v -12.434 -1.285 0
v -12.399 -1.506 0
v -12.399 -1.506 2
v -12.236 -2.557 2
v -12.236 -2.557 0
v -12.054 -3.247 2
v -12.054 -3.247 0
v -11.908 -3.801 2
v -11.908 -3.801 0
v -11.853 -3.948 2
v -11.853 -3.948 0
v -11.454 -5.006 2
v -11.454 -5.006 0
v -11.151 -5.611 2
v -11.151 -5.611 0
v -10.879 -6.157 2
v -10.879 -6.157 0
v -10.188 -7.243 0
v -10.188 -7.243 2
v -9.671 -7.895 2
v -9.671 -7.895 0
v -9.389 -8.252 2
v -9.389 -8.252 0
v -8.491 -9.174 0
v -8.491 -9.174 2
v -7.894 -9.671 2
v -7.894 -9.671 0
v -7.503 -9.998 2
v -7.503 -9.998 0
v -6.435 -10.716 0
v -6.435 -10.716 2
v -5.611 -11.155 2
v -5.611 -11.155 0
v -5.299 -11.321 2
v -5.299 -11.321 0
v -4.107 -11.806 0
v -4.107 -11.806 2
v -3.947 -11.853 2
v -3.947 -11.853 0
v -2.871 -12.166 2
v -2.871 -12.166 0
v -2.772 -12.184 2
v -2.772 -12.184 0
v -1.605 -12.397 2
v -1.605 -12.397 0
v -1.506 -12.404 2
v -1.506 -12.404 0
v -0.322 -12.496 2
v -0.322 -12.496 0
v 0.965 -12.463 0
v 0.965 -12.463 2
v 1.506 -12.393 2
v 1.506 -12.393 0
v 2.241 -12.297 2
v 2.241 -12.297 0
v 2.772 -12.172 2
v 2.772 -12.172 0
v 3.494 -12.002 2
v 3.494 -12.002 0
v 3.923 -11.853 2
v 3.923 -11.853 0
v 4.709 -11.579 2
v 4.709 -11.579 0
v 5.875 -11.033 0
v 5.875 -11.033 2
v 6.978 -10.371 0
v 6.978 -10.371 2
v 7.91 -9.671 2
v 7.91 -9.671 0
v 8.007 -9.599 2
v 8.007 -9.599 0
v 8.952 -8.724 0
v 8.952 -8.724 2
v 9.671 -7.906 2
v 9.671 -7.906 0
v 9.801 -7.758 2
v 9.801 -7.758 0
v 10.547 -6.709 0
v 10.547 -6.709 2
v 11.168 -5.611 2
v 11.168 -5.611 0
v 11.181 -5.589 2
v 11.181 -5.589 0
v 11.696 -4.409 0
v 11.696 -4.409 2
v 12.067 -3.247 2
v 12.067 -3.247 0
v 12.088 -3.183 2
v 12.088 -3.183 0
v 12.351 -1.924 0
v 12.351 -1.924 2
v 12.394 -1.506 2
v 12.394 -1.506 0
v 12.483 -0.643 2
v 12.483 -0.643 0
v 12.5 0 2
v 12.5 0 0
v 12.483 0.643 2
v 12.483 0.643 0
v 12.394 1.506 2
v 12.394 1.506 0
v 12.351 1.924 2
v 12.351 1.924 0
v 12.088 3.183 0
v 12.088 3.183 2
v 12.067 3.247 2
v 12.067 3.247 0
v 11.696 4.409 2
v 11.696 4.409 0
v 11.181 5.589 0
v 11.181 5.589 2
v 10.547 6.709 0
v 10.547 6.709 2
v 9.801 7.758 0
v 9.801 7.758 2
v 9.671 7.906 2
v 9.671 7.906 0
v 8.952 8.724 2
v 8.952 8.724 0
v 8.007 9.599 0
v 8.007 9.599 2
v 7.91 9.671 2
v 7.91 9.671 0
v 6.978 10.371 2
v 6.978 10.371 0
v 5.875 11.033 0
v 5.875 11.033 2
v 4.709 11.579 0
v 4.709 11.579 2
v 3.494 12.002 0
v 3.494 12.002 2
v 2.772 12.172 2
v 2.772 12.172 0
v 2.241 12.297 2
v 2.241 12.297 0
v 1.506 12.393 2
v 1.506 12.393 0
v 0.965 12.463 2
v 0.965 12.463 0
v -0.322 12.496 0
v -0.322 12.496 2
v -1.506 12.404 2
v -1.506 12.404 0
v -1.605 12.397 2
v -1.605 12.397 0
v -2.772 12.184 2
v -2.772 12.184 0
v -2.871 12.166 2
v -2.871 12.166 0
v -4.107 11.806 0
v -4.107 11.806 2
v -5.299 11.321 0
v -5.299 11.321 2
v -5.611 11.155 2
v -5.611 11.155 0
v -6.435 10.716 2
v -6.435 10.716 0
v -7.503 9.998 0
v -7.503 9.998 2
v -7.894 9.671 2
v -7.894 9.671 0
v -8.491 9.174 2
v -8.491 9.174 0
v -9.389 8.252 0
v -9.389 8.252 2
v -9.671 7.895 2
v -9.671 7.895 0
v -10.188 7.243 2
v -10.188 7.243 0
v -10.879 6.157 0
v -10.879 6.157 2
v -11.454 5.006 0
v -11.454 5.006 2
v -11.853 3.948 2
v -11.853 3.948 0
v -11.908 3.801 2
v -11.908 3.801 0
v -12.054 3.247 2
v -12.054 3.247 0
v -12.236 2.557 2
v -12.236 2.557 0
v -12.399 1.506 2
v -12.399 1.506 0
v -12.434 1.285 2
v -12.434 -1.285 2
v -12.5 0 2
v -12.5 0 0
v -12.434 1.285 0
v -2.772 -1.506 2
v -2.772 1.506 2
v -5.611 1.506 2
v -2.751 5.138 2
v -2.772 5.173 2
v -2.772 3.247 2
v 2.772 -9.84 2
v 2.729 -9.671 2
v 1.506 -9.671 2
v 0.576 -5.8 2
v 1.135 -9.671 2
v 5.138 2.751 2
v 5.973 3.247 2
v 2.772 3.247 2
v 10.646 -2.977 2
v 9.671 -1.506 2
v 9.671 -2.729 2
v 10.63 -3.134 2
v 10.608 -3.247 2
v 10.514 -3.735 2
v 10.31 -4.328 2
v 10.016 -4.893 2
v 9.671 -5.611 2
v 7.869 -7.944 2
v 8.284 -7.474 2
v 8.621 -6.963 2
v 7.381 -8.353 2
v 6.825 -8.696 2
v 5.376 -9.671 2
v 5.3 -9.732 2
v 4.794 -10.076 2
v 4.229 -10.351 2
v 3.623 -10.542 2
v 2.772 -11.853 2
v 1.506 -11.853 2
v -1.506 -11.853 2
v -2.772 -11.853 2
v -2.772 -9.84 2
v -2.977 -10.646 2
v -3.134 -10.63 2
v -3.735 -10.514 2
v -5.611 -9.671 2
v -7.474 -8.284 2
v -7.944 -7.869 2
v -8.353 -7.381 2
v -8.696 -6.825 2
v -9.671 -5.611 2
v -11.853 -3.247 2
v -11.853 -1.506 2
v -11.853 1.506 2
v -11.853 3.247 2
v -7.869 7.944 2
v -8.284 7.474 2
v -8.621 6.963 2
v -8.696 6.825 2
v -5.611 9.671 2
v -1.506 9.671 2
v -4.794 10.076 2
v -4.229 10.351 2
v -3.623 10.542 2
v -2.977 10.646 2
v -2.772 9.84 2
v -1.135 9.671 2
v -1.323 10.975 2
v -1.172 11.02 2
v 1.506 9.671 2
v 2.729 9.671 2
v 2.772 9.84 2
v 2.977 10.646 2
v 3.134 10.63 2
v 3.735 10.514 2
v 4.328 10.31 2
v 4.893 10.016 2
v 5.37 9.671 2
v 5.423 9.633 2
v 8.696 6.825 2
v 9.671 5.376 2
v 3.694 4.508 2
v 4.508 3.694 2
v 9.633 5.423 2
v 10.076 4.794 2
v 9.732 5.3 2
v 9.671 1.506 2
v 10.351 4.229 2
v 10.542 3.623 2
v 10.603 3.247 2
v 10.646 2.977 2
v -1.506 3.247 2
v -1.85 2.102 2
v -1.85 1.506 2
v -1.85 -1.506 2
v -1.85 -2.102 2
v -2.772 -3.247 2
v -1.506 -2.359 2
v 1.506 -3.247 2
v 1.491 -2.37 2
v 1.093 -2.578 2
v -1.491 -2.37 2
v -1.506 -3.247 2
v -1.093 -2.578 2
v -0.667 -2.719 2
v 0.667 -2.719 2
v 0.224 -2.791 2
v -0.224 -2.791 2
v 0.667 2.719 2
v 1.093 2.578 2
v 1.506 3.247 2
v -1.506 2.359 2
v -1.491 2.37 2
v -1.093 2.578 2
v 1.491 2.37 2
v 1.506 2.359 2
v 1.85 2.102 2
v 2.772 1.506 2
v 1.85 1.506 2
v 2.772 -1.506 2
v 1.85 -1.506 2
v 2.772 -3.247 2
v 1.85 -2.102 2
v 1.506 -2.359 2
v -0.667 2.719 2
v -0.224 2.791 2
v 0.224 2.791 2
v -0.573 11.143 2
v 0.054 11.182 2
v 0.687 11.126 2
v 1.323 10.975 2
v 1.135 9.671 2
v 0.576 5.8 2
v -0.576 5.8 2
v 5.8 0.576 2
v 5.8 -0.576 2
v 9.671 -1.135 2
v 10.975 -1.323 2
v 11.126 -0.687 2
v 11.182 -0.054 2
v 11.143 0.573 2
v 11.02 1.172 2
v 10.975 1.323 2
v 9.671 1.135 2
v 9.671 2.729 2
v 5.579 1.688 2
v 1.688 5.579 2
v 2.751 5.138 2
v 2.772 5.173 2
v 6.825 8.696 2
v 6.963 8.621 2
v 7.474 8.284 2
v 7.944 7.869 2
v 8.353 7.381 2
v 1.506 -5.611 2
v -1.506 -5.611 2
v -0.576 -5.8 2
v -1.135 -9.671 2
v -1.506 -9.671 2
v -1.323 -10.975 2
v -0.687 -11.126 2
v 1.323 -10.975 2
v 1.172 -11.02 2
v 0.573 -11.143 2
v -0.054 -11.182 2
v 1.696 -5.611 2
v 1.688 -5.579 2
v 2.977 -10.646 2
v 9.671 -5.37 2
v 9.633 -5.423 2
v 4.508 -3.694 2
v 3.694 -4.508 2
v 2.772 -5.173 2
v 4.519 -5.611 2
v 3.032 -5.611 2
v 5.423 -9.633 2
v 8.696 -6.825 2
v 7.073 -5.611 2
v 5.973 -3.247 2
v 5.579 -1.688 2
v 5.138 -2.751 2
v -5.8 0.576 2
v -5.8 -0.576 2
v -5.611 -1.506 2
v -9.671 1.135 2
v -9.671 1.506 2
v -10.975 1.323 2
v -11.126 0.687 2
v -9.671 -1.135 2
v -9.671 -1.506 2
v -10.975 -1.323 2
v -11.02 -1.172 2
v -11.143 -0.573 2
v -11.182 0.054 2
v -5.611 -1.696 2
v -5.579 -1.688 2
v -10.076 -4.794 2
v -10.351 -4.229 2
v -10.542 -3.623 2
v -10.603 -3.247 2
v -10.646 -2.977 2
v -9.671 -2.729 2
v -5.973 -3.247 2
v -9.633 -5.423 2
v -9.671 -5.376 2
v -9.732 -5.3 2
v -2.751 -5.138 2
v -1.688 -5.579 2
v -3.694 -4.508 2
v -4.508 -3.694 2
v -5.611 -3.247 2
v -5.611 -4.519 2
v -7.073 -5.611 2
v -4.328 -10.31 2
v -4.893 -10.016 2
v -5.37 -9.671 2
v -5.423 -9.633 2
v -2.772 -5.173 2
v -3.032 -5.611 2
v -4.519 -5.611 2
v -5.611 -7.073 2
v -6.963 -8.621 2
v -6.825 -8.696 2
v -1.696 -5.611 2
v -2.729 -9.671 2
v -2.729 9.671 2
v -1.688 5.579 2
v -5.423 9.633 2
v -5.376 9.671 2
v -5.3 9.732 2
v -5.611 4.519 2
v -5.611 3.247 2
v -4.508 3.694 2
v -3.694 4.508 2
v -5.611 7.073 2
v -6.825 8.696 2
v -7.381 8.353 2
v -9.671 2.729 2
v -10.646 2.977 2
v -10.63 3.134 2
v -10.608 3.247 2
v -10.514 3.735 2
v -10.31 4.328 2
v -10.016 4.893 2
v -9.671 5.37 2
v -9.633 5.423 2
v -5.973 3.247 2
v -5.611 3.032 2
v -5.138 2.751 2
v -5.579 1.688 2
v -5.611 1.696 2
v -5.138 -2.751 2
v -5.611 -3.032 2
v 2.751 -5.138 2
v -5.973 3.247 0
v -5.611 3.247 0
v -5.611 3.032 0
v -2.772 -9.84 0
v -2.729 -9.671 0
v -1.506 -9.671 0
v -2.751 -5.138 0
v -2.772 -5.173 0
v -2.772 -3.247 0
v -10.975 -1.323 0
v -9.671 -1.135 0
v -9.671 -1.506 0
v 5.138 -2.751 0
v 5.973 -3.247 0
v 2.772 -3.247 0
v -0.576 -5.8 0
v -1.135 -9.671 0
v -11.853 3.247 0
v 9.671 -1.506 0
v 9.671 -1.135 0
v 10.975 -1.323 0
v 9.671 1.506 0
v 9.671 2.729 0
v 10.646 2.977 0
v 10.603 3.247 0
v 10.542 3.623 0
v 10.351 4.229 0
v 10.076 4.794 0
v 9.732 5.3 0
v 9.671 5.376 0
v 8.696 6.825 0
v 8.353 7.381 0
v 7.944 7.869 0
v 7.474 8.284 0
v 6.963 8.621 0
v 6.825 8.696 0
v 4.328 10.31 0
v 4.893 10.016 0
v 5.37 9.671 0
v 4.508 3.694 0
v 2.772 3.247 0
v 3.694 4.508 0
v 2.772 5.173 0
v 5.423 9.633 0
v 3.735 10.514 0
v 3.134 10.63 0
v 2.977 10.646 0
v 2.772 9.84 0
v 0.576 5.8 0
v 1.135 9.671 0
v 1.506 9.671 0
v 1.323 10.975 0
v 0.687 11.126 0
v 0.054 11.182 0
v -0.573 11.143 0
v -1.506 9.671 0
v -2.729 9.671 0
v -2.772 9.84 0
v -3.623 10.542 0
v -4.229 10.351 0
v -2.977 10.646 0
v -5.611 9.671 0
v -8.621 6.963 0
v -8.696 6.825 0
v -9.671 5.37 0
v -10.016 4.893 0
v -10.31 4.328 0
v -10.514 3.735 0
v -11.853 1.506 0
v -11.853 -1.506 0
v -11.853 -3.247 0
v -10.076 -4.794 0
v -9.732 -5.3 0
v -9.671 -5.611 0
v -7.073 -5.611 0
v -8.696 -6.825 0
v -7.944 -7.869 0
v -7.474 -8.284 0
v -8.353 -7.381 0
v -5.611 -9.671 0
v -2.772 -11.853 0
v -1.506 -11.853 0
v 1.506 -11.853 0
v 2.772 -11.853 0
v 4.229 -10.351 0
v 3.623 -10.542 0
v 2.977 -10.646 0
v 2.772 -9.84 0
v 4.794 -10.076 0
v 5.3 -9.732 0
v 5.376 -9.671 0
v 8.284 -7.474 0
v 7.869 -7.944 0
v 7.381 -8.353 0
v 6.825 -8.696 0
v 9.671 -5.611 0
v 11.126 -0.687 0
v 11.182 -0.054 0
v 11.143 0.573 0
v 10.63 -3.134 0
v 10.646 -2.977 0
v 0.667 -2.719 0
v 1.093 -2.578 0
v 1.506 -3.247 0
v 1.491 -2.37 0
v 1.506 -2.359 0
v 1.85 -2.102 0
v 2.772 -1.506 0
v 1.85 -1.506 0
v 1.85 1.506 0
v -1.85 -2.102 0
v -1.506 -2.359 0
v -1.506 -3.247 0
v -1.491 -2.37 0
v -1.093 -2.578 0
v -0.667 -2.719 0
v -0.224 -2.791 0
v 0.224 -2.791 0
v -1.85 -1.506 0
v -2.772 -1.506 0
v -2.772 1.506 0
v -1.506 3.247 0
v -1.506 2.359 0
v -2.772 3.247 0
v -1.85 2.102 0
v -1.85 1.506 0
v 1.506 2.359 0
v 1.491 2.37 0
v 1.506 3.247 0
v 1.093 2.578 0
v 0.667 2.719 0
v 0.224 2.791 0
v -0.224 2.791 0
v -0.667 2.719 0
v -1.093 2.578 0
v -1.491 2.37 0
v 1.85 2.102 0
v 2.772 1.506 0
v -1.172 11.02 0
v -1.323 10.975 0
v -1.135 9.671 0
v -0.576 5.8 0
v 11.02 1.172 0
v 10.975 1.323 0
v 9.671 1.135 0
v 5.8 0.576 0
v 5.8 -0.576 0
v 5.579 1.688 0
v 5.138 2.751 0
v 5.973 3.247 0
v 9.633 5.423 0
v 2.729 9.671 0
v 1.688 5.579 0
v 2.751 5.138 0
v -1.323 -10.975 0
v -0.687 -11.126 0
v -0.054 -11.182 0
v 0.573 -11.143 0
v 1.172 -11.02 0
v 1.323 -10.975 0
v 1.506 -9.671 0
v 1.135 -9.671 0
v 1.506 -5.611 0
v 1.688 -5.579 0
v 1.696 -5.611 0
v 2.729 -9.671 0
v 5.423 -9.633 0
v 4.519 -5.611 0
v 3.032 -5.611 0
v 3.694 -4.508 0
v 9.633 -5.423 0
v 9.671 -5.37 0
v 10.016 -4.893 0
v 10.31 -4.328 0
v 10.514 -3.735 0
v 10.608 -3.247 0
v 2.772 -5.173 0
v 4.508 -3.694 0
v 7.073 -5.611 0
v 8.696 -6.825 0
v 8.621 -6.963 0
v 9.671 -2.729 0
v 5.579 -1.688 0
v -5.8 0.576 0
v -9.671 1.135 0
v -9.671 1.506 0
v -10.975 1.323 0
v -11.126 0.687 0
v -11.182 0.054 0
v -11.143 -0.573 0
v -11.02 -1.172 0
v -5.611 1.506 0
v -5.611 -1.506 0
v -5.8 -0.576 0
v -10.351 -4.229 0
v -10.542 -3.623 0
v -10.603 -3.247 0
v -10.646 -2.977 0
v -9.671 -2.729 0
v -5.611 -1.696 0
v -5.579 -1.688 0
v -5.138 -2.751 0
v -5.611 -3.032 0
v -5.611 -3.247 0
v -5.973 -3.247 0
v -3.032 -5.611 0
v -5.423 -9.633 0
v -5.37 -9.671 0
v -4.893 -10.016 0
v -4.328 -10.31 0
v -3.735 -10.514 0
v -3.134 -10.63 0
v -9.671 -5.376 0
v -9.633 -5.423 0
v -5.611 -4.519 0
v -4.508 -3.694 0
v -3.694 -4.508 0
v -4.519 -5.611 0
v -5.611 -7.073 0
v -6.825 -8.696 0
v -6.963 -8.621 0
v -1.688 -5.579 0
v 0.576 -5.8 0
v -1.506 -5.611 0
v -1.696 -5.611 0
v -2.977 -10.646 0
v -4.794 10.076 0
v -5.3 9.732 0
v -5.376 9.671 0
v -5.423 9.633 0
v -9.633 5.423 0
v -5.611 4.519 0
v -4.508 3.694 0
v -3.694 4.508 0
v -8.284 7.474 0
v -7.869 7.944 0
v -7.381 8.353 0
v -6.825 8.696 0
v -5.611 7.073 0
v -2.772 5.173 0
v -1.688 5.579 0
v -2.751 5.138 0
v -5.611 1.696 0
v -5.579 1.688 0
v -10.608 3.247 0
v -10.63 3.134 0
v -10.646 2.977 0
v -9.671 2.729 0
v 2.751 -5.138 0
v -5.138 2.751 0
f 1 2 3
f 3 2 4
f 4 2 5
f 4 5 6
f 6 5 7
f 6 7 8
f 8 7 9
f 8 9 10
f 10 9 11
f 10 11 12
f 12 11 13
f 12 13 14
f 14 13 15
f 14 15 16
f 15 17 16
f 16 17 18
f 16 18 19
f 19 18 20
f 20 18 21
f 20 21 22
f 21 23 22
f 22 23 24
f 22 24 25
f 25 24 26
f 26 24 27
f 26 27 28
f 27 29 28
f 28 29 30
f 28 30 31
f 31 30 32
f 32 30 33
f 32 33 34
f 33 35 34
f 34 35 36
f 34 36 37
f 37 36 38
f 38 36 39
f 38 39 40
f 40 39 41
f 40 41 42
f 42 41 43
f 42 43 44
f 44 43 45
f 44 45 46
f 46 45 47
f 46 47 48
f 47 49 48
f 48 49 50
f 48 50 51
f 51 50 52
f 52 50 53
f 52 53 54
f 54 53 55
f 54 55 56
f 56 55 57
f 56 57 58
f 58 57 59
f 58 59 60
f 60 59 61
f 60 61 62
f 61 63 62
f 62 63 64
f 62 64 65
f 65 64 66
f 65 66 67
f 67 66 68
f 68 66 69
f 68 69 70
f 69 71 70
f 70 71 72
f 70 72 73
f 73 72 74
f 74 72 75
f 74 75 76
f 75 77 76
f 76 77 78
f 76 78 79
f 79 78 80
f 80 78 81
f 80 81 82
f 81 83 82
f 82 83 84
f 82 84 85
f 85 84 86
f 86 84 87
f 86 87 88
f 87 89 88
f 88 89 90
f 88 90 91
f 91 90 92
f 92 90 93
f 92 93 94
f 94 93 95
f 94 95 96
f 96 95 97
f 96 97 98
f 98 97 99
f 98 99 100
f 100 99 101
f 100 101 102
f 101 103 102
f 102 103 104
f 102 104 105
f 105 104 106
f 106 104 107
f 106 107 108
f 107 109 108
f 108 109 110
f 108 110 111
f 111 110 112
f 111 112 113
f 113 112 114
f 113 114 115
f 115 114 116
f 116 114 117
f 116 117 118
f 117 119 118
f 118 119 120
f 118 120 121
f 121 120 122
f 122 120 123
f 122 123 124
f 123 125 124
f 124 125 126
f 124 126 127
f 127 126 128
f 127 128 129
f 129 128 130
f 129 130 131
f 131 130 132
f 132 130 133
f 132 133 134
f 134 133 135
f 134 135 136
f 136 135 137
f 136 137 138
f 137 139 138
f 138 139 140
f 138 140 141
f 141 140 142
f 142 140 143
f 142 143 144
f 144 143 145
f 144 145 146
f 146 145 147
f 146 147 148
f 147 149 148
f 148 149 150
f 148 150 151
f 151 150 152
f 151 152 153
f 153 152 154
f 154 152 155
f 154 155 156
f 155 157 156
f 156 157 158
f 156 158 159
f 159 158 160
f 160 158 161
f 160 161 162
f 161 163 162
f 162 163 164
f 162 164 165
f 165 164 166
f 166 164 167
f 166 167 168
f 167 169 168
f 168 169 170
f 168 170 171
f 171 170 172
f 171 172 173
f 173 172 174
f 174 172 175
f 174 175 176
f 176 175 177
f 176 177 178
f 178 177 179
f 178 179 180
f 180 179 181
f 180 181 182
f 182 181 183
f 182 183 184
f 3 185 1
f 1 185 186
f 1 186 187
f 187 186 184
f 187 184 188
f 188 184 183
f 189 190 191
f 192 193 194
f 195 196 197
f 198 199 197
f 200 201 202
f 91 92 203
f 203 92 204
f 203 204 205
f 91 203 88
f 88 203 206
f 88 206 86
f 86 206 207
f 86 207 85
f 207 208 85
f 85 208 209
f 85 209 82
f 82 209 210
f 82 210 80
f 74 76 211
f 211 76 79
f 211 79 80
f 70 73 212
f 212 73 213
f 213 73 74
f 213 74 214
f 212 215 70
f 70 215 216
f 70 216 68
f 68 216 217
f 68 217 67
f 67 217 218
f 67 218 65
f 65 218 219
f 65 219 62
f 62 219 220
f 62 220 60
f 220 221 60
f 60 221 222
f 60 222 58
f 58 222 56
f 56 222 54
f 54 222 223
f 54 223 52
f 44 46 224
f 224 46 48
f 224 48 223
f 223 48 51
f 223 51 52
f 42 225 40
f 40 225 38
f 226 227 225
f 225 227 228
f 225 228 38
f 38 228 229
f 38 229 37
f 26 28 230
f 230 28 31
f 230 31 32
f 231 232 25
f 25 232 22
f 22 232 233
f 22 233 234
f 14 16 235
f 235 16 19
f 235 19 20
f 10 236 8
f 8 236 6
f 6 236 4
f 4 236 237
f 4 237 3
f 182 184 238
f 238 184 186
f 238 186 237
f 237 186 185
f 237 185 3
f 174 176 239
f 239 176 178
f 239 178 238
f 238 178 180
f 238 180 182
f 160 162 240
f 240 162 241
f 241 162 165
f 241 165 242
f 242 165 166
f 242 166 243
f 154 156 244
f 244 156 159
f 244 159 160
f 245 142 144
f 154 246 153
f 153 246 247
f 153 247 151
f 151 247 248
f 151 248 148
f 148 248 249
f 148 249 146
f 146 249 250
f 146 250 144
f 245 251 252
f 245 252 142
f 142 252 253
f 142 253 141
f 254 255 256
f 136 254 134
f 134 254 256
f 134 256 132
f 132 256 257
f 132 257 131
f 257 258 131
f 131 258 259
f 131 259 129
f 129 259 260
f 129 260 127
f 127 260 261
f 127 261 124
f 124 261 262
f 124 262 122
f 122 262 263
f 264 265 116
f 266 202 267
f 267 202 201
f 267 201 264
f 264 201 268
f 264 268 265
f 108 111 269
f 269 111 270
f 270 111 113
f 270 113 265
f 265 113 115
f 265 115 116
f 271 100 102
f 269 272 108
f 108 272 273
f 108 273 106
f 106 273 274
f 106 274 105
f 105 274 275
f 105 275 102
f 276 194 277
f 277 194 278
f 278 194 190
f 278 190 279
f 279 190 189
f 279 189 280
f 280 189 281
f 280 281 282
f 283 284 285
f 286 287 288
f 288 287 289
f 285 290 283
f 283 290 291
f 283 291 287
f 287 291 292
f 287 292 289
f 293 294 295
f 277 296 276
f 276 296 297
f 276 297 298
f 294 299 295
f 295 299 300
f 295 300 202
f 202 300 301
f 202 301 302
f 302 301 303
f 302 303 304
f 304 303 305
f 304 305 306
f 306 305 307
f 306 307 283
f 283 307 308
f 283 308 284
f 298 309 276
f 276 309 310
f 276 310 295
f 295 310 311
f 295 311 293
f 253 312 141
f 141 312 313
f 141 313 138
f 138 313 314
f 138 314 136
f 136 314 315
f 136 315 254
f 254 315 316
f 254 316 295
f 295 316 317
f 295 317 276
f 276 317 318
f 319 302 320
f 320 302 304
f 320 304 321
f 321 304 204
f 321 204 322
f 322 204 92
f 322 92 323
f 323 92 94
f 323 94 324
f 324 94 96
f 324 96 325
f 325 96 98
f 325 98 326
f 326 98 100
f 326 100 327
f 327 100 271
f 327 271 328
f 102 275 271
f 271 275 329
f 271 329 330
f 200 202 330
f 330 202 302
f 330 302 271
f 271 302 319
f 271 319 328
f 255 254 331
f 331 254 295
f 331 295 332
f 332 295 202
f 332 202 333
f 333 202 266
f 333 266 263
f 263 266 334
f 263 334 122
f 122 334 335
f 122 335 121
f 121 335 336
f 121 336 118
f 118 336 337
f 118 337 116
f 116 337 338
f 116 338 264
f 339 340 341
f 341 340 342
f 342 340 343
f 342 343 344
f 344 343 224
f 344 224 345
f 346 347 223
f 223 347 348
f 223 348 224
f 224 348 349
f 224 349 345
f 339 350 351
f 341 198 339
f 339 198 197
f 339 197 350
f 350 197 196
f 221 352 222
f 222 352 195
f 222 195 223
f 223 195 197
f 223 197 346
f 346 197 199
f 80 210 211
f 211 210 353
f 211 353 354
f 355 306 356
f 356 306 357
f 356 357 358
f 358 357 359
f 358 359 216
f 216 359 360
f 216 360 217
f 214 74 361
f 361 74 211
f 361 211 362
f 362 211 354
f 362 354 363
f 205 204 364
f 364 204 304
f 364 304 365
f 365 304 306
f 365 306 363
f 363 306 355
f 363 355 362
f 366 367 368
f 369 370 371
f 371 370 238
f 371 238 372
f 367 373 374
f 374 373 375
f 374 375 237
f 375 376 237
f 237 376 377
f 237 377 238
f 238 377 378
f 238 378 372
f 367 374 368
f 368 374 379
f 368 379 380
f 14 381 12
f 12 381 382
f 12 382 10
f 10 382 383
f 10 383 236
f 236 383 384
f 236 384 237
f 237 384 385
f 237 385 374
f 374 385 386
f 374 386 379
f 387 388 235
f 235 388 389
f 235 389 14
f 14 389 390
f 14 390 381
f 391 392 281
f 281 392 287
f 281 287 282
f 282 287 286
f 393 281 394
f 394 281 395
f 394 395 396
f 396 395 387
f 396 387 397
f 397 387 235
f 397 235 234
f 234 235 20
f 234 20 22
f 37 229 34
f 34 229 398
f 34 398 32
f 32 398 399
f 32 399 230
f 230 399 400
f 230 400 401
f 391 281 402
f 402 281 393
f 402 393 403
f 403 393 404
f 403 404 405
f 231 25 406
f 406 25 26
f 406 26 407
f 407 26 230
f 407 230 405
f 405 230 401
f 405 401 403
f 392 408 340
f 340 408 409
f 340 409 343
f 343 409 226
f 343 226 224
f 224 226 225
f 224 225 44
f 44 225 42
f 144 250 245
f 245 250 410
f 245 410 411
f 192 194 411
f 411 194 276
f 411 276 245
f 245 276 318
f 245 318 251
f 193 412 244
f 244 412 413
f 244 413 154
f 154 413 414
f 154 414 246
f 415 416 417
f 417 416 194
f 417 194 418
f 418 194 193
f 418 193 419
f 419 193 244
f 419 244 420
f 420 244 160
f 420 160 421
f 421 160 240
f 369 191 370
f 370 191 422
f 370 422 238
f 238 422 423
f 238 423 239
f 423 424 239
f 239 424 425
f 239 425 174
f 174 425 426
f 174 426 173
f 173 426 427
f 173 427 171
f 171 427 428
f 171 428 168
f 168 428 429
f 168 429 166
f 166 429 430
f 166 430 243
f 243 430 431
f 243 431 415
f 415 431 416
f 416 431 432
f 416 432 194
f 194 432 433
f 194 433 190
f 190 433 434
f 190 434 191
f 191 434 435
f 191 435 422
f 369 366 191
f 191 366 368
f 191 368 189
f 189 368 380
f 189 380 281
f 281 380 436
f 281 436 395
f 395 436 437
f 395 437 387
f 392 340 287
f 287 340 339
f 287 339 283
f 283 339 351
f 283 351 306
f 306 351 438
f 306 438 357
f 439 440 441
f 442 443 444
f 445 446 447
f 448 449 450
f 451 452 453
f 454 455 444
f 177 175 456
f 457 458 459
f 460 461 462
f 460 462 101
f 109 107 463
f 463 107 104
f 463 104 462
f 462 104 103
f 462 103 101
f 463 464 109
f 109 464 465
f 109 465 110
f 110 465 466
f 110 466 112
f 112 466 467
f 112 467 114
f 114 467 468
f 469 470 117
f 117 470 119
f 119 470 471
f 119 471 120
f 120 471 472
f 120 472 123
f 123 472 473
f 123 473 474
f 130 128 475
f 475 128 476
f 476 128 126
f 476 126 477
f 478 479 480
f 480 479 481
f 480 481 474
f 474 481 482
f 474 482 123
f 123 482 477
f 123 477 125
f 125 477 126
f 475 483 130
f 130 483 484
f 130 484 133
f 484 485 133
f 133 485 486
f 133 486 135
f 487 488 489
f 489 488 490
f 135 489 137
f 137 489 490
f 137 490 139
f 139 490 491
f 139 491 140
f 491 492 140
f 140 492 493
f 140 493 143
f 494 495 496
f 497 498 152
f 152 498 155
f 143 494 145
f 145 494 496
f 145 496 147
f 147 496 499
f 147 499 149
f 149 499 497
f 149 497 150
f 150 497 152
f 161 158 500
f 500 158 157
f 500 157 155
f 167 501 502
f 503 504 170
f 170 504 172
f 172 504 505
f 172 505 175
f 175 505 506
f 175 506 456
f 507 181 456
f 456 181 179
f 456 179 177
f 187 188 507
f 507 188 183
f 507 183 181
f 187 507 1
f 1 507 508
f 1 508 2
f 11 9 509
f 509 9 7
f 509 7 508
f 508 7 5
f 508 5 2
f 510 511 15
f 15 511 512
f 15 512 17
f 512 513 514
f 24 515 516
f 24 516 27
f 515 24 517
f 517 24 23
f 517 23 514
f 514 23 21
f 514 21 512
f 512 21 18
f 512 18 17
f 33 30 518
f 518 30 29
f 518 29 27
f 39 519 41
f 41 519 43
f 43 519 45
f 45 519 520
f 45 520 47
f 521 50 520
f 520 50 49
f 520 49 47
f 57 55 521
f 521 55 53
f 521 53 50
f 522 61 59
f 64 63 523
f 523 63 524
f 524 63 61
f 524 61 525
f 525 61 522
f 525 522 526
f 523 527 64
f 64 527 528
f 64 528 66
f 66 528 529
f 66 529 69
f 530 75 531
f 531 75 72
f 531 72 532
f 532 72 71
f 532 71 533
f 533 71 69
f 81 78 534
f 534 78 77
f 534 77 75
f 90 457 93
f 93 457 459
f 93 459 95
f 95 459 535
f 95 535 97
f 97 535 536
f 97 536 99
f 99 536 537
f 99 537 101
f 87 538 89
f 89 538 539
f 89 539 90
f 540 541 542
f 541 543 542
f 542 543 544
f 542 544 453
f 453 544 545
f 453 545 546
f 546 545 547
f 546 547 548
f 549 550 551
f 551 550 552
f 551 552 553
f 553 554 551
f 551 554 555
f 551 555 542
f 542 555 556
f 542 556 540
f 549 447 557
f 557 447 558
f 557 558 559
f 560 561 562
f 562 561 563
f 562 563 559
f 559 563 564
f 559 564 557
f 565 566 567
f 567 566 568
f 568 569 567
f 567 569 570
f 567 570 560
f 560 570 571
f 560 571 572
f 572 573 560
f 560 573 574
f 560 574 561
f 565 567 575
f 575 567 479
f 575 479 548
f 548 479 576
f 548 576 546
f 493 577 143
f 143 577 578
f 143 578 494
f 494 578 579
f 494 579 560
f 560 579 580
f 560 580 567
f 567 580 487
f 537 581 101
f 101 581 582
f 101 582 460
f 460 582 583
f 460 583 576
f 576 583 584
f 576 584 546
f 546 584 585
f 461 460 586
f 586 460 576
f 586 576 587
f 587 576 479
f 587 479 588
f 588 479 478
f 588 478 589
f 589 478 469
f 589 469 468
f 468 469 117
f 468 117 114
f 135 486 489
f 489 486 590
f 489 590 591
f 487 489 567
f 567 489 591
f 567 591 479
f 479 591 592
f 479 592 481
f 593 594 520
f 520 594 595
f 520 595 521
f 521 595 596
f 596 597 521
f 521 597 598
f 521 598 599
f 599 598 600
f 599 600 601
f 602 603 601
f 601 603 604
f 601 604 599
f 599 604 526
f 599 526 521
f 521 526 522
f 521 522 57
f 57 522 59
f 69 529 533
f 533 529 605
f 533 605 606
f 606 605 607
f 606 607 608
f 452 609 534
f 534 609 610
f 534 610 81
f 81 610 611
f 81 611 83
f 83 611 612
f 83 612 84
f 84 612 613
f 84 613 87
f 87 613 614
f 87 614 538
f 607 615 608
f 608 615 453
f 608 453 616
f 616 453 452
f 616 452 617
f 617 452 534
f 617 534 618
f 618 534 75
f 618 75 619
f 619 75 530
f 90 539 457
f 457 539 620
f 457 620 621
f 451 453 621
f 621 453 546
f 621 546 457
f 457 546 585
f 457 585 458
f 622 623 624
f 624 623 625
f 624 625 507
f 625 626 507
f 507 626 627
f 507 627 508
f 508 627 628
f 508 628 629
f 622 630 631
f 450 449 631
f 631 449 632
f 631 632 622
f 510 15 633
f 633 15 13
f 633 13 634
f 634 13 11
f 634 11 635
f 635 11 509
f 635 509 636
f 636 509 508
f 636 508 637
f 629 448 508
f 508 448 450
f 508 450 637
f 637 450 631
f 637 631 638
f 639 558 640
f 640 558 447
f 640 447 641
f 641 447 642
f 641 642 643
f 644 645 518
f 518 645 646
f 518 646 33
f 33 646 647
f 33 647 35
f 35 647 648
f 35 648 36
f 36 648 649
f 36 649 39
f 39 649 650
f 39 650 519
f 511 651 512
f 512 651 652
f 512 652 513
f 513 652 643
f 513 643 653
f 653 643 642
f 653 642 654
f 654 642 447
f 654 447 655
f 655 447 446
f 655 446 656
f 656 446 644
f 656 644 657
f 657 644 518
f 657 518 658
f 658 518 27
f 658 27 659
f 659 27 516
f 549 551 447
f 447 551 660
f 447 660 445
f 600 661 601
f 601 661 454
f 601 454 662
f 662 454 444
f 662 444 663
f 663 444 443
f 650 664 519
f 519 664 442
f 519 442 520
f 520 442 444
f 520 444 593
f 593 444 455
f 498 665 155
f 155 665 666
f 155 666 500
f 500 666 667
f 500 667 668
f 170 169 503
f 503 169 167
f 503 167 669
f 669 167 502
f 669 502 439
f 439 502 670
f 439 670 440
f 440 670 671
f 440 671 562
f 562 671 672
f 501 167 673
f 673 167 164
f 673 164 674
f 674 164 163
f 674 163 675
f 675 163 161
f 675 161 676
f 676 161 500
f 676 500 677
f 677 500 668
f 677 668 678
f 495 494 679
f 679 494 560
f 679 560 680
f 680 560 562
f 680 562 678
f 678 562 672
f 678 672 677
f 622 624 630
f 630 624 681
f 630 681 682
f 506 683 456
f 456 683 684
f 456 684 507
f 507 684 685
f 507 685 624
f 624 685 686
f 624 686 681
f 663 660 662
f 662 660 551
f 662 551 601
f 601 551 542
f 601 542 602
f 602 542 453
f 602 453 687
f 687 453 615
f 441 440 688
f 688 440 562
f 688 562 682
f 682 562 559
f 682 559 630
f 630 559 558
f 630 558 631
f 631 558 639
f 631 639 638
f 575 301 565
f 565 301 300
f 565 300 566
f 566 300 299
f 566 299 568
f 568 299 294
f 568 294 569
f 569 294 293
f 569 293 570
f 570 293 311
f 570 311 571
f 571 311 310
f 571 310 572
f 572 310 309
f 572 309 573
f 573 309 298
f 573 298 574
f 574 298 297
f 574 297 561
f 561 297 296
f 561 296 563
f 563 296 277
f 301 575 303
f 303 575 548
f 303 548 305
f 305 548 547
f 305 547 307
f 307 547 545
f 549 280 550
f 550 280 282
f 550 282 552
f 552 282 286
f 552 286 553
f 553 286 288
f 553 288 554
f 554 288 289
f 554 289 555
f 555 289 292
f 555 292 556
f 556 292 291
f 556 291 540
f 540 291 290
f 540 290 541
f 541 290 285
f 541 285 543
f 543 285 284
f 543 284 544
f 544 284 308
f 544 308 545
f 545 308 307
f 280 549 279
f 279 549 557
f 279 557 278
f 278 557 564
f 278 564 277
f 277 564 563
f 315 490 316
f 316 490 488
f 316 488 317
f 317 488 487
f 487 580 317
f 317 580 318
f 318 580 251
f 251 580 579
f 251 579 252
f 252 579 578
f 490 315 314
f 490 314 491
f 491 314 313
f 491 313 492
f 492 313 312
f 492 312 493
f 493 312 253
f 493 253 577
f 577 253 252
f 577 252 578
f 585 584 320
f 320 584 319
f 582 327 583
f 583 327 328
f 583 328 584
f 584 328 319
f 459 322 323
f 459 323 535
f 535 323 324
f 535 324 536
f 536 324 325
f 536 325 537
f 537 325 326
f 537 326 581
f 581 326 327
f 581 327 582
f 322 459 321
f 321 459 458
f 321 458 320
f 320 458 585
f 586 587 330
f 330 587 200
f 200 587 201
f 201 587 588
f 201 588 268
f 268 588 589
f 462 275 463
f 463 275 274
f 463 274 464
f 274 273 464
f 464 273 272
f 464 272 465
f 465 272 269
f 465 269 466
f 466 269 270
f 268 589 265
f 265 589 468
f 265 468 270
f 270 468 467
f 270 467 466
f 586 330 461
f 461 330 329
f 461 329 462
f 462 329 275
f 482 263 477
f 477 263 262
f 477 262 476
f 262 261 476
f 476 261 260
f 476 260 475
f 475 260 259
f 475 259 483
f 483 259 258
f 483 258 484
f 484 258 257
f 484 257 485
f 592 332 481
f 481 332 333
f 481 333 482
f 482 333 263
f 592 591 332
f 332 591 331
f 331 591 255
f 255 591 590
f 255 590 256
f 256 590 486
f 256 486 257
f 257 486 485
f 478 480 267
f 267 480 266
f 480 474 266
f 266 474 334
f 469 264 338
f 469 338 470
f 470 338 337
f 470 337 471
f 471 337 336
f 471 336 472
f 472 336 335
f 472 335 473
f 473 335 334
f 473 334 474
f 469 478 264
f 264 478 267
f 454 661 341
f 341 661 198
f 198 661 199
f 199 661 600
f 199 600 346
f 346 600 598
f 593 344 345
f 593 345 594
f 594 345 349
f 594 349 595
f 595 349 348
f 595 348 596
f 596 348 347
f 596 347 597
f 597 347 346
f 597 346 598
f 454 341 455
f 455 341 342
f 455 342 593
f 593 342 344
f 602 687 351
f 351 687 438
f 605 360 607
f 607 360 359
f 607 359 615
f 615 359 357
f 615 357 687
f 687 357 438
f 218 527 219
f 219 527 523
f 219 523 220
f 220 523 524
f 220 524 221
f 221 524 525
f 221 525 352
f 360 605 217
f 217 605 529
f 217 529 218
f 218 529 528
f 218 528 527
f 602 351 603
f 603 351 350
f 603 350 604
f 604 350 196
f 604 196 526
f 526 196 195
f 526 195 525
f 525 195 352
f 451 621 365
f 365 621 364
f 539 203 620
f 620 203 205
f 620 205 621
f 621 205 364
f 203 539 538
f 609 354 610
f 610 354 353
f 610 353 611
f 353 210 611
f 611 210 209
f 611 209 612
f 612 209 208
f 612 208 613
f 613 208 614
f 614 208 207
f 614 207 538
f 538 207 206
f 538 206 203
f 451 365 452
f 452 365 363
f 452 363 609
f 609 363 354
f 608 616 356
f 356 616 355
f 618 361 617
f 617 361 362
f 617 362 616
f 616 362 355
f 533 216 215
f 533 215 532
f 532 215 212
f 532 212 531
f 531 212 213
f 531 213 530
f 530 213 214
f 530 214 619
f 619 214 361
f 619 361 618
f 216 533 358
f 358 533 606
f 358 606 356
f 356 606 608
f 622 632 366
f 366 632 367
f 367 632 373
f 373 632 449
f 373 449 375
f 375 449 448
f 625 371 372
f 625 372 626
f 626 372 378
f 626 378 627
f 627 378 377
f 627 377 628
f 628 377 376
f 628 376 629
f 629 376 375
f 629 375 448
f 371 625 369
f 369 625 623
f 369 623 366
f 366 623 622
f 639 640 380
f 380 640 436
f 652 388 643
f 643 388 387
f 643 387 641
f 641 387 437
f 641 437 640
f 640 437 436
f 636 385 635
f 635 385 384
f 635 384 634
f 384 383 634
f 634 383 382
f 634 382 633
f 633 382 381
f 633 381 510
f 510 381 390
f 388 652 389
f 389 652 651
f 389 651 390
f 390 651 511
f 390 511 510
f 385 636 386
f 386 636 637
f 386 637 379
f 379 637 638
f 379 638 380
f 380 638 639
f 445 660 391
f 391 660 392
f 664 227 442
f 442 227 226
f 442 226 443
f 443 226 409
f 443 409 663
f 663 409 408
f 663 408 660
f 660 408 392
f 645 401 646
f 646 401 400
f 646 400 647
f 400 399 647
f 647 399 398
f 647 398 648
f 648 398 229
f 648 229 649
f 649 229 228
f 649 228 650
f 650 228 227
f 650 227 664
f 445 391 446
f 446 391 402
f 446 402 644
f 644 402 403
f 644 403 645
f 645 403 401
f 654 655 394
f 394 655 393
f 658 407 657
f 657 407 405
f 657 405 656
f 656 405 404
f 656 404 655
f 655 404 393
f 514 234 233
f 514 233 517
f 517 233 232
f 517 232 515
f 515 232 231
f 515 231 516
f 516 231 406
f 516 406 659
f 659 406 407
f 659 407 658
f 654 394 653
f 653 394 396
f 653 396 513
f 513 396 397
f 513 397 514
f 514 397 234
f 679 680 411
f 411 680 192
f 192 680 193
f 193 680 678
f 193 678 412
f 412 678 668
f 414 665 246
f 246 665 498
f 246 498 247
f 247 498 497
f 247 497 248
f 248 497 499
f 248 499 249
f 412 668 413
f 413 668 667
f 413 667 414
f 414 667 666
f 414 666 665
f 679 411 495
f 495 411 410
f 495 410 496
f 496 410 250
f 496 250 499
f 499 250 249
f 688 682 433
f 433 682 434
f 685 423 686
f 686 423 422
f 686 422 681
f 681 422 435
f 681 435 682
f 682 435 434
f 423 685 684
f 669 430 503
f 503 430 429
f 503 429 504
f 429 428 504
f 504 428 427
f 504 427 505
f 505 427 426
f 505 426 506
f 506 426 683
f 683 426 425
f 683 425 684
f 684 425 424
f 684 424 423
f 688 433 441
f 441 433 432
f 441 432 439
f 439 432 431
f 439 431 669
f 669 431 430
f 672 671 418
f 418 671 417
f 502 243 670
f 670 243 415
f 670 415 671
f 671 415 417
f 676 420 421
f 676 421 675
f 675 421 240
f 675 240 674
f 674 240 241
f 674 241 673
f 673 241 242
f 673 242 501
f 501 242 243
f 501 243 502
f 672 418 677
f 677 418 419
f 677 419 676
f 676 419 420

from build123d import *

# Parameters (mm, degrees)
SKETCH1_R           = 12.5
BOSS_EXTRUDE1_DEPTH = 2
CUT_EXTRUDE1_DEPTH  = 2
CUT_EXTRUDE2_DEPTH  = 2


with BuildPart() as part:
    # Sketch1 → Boss-Extrude1 (new body)
    with BuildSketch(Plane.XY):
        Circle(SKETCH1_R)
    extrude(amount=BOSS_EXTRUDE1_DEPTH)

    # Sketch2 → Cut-Extrude1 (cut)
    with BuildSketch(Plane.XY.offset(2)):
        with BuildLine():
            Line((1.85, 2.101784956), (1.85, -2.101784956))
            ThreePointArc((1.85, -2.101784956), (0, -2.8), (-1.85, -2.101784956))
            Line((-1.85, -2.101784956), (-1.85, 2.101784956))
            ThreePointArc((-1.85, 2.101784956), (0, 2.8), (1.85, 2.101784956))
        make_face()
    extrude(amount=-CUT_EXTRUDE1_DEPTH, mode=Mode.SUBTRACT)

    # Sketch3 → Cut-Extrude2 (cut)
    with BuildSketch(Plane.XY.offset(2)):
        with BuildLine():
            Line((-0.575541349, 5.8), (0.575541349, 5.8))
            Line((0.575541349, 5.8), (1.323383427, 10.975313802))
            add(Edge.make_bspline(
                [(-1.323383427, 10.975313802), (0, 11.388369724), (1.323383427, 10.975313802)],
                knots=[0, 0, 0, 1, 1, 1], degree=2))
            Line((-1.323383427, 10.975313802), (-0.575541349, 5.8))
        make_face()
        with BuildLine():
            Line((2.75129478, 5.13825115), (5.422717619, 9.633430872))
            add(Edge.make_bspline(
                [(2.977423895, 10.646304697), (4.358140415, 10.521481696), (5.422717619, 9.633430872)],
                knots=[0, 0, 0, 1, 1, 1], degree=2))
            Line((2.977423895, 10.646304697), (1.687833035, 5.578751427))
            Line((1.687833035, 5.578751427), (2.75129478, 5.13825115))
        make_face()
        with BuildLine():
            Line((4.508188522, 3.69425014), (8.69649221, 6.82494542))
            add(Edge.make_bspline(
                [(6.82494542, 8.69649221), (8.052793458, 8.052793458), (8.69649221, 6.82494542)],
                knots=[0, 0, 0, 1, 1, 1], degree=2))
            Line((6.82494542, 8.69649221), (3.69425014, 4.508188522))
            Line((3.69425014, 4.508188522), (4.508188522, 3.69425014))
        make_face()
        with BuildLine():
            Line((5.578751427, 1.687833035), (10.646304697, 2.977423895))
            add(Edge.make_bspline(
                [(9.633430872, 5.422717619), (10.521481696, 4.358140415), (10.646304697, 2.977423895)],
                knots=[0, 0, 0, 1, 1, 1], degree=2))
            Line((9.633430872, 5.422717619), (5.13825115, 2.75129478))
            Line((5.13825115, 2.75129478), (5.578751427, 1.687833035))
        make_face()
        with BuildLine():
            Line((5.8, -0.575541349), (10.975313802, -1.323383427))
            add(Edge.make_bspline(
                [(10.975313802, 1.323383427), (11.388369724, 0), (10.975313802, -1.323383427)],
                knots=[0, 0, 0, 1, 1, 1], degree=2))
            Line((10.975313802, 1.323383427), (5.8, 0.575541349))
            Line((5.8, 0.575541349), (5.8, -0.575541349))
        make_face()
        with BuildLine():
            Line((5.13825115, -2.75129478), (9.633430872, -5.422717619))
            add(Edge.make_bspline(
                [(10.646304697, -2.977423895), (10.521481696, -4.358140415), (9.633430872, -5.422717619)],
                knots=[0, 0, 0, 1, 1, 1], degree=2))
            Line((10.646304697, -2.977423895), (5.578751427, -1.687833035))
            Line((5.578751427, -1.687833035), (5.13825115, -2.75129478))
        make_face()
        with BuildLine():
            Line((3.69425014, -4.508188522), (6.82494542, -8.69649221))
            add(Edge.make_bspline(
                [(8.69649221, -6.82494542), (8.052793458, -8.052793458), (6.82494542, -8.69649221)],
                knots=[0, 0, 0, 1, 1, 1], degree=2))
            Line((8.69649221, -6.82494542), (4.508188522, -3.69425014))
            Line((4.508188522, -3.69425014), (3.69425014, -4.508188522))
        make_face()
        with BuildLine():
            Line((1.687833035, -5.578751427), (2.977423895, -10.646304697))
            add(Edge.make_bspline(
                [(5.422717619, -9.633430872), (4.358140415, -10.521481696), (2.977423895, -10.646304697)],
                knots=[0, 0, 0, 1, 1, 1], degree=2))
            Line((5.422717619, -9.633430872), (2.75129478, -5.13825115))
            Line((2.75129478, -5.13825115), (1.687833035, -5.578751427))
        make_face()
        with BuildLine():
            Line((-0.575541349, -5.8), (-1.323383427, -10.975313802))
            add(Edge.make_bspline(
                [(1.323383427, -10.975313802), (0, -11.388369724), (-1.323383427, -10.975313802)],
                knots=[0, 0, 0, 1, 1, 1], degree=2))
            Line((1.323383427, -10.975313802), (0.575541349, -5.8))
            Line((0.575541349, -5.8), (-0.575541349, -5.8))
        make_face()
        with BuildLine():
            Line((-2.75129478, -5.13825115), (-5.422717619, -9.633430872))
            add(Edge.make_bspline(
                [(-2.977423895, -10.646304697), (-4.358140415, -10.521481696), (-5.422717619, -9.633430872)],
                knots=[0, 0, 0, 1, 1, 1], degree=2))
            Line((-2.977423895, -10.646304697), (-1.687833035, -5.578751427))
            Line((-1.687833035, -5.578751427), (-2.75129478, -5.13825115))
        make_face()
        with BuildLine():
            Line((-4.508188522, -3.69425014), (-8.69649221, -6.82494542))
            add(Edge.make_bspline(
                [(-6.82494542, -8.69649221), (-8.052793458, -8.052793458), (-8.69649221, -6.82494542)],
                knots=[0, 0, 0, 1, 1, 1], degree=2))
            Line((-6.82494542, -8.69649221), (-3.69425014, -4.508188522))
            Line((-3.69425014, -4.508188522), (-4.508188522, -3.69425014))
        make_face()
        with BuildLine():
            Line((-5.578751427, -1.687833035), (-10.646304697, -2.977423895))
            add(Edge.make_bspline(
                [(-9.633430872, -5.422717619), (-10.521481696, -4.358140415), (-10.646304697, -2.977423895)],
                knots=[0, 0, 0, 1, 1, 1], degree=2))
            Line((-9.633430872, -5.422717619), (-5.13825115, -2.75129478))
            Line((-5.13825115, -2.75129478), (-5.578751427, -1.687833035))
        make_face()
        with BuildLine():
            Line((-5.8, 0.575541349), (-10.975313802, 1.323383427))
            add(Edge.make_bspline(
                [(-10.975313802, -1.323383427), (-11.388369724, 0), (-10.975313802, 1.323383427)],
                knots=[0, 0, 0, 1, 1, 1], degree=2))
            Line((-10.975313802, -1.323383427), (-5.8, -0.575541349))
            Line((-5.8, -0.575541349), (-5.8, 0.575541349))
        make_face()
        with BuildLine():
            Line((-5.13825115, 2.75129478), (-9.633430872, 5.422717619))
            add(Edge.make_bspline(
                [(-10.646304697, 2.977423895), (-10.521481696, 4.358140415), (-9.633430872, 5.422717619)],
                knots=[0, 0, 0, 1, 1, 1], degree=2))
            Line((-10.646304697, 2.977423895), (-5.578751427, 1.687833035))
            Line((-5.578751427, 1.687833035), (-5.13825115, 2.75129478))
        make_face()
        with BuildLine():
            Line((-3.69425014, 4.508188522), (-6.82494542, 8.69649221))
            add(Edge.make_bspline(
                [(-8.69649221, 6.82494542), (-8.052793458, 8.052793458), (-6.82494542, 8.69649221)],
                knots=[0, 0, 0, 1, 1, 1], degree=2))
            Line((-8.69649221, 6.82494542), (-4.508188522, 3.69425014))
            Line((-4.508188522, 3.69425014), (-3.69425014, 4.508188522))
        make_face()
        with BuildLine():
            Line((-1.687833035, 5.578751427), (-2.977423895, 10.646304697))
            add(Edge.make_bspline(
                [(-5.422717619, 9.633430872), (-4.358140415, 10.521481696), (-2.977423895, 10.646304697)],
                knots=[0, 0, 0, 1, 1, 1], degree=2))
            Line((-5.422717619, 9.633430872), (-2.75129478, 5.13825115))
            Line((-2.75129478, 5.13825115), (-1.687833035, 5.578751427))
        make_face()
    extrude(amount=-CUT_EXTRUDE2_DEPTH, mode=Mode.SUBTRACT)


solid = part.part
